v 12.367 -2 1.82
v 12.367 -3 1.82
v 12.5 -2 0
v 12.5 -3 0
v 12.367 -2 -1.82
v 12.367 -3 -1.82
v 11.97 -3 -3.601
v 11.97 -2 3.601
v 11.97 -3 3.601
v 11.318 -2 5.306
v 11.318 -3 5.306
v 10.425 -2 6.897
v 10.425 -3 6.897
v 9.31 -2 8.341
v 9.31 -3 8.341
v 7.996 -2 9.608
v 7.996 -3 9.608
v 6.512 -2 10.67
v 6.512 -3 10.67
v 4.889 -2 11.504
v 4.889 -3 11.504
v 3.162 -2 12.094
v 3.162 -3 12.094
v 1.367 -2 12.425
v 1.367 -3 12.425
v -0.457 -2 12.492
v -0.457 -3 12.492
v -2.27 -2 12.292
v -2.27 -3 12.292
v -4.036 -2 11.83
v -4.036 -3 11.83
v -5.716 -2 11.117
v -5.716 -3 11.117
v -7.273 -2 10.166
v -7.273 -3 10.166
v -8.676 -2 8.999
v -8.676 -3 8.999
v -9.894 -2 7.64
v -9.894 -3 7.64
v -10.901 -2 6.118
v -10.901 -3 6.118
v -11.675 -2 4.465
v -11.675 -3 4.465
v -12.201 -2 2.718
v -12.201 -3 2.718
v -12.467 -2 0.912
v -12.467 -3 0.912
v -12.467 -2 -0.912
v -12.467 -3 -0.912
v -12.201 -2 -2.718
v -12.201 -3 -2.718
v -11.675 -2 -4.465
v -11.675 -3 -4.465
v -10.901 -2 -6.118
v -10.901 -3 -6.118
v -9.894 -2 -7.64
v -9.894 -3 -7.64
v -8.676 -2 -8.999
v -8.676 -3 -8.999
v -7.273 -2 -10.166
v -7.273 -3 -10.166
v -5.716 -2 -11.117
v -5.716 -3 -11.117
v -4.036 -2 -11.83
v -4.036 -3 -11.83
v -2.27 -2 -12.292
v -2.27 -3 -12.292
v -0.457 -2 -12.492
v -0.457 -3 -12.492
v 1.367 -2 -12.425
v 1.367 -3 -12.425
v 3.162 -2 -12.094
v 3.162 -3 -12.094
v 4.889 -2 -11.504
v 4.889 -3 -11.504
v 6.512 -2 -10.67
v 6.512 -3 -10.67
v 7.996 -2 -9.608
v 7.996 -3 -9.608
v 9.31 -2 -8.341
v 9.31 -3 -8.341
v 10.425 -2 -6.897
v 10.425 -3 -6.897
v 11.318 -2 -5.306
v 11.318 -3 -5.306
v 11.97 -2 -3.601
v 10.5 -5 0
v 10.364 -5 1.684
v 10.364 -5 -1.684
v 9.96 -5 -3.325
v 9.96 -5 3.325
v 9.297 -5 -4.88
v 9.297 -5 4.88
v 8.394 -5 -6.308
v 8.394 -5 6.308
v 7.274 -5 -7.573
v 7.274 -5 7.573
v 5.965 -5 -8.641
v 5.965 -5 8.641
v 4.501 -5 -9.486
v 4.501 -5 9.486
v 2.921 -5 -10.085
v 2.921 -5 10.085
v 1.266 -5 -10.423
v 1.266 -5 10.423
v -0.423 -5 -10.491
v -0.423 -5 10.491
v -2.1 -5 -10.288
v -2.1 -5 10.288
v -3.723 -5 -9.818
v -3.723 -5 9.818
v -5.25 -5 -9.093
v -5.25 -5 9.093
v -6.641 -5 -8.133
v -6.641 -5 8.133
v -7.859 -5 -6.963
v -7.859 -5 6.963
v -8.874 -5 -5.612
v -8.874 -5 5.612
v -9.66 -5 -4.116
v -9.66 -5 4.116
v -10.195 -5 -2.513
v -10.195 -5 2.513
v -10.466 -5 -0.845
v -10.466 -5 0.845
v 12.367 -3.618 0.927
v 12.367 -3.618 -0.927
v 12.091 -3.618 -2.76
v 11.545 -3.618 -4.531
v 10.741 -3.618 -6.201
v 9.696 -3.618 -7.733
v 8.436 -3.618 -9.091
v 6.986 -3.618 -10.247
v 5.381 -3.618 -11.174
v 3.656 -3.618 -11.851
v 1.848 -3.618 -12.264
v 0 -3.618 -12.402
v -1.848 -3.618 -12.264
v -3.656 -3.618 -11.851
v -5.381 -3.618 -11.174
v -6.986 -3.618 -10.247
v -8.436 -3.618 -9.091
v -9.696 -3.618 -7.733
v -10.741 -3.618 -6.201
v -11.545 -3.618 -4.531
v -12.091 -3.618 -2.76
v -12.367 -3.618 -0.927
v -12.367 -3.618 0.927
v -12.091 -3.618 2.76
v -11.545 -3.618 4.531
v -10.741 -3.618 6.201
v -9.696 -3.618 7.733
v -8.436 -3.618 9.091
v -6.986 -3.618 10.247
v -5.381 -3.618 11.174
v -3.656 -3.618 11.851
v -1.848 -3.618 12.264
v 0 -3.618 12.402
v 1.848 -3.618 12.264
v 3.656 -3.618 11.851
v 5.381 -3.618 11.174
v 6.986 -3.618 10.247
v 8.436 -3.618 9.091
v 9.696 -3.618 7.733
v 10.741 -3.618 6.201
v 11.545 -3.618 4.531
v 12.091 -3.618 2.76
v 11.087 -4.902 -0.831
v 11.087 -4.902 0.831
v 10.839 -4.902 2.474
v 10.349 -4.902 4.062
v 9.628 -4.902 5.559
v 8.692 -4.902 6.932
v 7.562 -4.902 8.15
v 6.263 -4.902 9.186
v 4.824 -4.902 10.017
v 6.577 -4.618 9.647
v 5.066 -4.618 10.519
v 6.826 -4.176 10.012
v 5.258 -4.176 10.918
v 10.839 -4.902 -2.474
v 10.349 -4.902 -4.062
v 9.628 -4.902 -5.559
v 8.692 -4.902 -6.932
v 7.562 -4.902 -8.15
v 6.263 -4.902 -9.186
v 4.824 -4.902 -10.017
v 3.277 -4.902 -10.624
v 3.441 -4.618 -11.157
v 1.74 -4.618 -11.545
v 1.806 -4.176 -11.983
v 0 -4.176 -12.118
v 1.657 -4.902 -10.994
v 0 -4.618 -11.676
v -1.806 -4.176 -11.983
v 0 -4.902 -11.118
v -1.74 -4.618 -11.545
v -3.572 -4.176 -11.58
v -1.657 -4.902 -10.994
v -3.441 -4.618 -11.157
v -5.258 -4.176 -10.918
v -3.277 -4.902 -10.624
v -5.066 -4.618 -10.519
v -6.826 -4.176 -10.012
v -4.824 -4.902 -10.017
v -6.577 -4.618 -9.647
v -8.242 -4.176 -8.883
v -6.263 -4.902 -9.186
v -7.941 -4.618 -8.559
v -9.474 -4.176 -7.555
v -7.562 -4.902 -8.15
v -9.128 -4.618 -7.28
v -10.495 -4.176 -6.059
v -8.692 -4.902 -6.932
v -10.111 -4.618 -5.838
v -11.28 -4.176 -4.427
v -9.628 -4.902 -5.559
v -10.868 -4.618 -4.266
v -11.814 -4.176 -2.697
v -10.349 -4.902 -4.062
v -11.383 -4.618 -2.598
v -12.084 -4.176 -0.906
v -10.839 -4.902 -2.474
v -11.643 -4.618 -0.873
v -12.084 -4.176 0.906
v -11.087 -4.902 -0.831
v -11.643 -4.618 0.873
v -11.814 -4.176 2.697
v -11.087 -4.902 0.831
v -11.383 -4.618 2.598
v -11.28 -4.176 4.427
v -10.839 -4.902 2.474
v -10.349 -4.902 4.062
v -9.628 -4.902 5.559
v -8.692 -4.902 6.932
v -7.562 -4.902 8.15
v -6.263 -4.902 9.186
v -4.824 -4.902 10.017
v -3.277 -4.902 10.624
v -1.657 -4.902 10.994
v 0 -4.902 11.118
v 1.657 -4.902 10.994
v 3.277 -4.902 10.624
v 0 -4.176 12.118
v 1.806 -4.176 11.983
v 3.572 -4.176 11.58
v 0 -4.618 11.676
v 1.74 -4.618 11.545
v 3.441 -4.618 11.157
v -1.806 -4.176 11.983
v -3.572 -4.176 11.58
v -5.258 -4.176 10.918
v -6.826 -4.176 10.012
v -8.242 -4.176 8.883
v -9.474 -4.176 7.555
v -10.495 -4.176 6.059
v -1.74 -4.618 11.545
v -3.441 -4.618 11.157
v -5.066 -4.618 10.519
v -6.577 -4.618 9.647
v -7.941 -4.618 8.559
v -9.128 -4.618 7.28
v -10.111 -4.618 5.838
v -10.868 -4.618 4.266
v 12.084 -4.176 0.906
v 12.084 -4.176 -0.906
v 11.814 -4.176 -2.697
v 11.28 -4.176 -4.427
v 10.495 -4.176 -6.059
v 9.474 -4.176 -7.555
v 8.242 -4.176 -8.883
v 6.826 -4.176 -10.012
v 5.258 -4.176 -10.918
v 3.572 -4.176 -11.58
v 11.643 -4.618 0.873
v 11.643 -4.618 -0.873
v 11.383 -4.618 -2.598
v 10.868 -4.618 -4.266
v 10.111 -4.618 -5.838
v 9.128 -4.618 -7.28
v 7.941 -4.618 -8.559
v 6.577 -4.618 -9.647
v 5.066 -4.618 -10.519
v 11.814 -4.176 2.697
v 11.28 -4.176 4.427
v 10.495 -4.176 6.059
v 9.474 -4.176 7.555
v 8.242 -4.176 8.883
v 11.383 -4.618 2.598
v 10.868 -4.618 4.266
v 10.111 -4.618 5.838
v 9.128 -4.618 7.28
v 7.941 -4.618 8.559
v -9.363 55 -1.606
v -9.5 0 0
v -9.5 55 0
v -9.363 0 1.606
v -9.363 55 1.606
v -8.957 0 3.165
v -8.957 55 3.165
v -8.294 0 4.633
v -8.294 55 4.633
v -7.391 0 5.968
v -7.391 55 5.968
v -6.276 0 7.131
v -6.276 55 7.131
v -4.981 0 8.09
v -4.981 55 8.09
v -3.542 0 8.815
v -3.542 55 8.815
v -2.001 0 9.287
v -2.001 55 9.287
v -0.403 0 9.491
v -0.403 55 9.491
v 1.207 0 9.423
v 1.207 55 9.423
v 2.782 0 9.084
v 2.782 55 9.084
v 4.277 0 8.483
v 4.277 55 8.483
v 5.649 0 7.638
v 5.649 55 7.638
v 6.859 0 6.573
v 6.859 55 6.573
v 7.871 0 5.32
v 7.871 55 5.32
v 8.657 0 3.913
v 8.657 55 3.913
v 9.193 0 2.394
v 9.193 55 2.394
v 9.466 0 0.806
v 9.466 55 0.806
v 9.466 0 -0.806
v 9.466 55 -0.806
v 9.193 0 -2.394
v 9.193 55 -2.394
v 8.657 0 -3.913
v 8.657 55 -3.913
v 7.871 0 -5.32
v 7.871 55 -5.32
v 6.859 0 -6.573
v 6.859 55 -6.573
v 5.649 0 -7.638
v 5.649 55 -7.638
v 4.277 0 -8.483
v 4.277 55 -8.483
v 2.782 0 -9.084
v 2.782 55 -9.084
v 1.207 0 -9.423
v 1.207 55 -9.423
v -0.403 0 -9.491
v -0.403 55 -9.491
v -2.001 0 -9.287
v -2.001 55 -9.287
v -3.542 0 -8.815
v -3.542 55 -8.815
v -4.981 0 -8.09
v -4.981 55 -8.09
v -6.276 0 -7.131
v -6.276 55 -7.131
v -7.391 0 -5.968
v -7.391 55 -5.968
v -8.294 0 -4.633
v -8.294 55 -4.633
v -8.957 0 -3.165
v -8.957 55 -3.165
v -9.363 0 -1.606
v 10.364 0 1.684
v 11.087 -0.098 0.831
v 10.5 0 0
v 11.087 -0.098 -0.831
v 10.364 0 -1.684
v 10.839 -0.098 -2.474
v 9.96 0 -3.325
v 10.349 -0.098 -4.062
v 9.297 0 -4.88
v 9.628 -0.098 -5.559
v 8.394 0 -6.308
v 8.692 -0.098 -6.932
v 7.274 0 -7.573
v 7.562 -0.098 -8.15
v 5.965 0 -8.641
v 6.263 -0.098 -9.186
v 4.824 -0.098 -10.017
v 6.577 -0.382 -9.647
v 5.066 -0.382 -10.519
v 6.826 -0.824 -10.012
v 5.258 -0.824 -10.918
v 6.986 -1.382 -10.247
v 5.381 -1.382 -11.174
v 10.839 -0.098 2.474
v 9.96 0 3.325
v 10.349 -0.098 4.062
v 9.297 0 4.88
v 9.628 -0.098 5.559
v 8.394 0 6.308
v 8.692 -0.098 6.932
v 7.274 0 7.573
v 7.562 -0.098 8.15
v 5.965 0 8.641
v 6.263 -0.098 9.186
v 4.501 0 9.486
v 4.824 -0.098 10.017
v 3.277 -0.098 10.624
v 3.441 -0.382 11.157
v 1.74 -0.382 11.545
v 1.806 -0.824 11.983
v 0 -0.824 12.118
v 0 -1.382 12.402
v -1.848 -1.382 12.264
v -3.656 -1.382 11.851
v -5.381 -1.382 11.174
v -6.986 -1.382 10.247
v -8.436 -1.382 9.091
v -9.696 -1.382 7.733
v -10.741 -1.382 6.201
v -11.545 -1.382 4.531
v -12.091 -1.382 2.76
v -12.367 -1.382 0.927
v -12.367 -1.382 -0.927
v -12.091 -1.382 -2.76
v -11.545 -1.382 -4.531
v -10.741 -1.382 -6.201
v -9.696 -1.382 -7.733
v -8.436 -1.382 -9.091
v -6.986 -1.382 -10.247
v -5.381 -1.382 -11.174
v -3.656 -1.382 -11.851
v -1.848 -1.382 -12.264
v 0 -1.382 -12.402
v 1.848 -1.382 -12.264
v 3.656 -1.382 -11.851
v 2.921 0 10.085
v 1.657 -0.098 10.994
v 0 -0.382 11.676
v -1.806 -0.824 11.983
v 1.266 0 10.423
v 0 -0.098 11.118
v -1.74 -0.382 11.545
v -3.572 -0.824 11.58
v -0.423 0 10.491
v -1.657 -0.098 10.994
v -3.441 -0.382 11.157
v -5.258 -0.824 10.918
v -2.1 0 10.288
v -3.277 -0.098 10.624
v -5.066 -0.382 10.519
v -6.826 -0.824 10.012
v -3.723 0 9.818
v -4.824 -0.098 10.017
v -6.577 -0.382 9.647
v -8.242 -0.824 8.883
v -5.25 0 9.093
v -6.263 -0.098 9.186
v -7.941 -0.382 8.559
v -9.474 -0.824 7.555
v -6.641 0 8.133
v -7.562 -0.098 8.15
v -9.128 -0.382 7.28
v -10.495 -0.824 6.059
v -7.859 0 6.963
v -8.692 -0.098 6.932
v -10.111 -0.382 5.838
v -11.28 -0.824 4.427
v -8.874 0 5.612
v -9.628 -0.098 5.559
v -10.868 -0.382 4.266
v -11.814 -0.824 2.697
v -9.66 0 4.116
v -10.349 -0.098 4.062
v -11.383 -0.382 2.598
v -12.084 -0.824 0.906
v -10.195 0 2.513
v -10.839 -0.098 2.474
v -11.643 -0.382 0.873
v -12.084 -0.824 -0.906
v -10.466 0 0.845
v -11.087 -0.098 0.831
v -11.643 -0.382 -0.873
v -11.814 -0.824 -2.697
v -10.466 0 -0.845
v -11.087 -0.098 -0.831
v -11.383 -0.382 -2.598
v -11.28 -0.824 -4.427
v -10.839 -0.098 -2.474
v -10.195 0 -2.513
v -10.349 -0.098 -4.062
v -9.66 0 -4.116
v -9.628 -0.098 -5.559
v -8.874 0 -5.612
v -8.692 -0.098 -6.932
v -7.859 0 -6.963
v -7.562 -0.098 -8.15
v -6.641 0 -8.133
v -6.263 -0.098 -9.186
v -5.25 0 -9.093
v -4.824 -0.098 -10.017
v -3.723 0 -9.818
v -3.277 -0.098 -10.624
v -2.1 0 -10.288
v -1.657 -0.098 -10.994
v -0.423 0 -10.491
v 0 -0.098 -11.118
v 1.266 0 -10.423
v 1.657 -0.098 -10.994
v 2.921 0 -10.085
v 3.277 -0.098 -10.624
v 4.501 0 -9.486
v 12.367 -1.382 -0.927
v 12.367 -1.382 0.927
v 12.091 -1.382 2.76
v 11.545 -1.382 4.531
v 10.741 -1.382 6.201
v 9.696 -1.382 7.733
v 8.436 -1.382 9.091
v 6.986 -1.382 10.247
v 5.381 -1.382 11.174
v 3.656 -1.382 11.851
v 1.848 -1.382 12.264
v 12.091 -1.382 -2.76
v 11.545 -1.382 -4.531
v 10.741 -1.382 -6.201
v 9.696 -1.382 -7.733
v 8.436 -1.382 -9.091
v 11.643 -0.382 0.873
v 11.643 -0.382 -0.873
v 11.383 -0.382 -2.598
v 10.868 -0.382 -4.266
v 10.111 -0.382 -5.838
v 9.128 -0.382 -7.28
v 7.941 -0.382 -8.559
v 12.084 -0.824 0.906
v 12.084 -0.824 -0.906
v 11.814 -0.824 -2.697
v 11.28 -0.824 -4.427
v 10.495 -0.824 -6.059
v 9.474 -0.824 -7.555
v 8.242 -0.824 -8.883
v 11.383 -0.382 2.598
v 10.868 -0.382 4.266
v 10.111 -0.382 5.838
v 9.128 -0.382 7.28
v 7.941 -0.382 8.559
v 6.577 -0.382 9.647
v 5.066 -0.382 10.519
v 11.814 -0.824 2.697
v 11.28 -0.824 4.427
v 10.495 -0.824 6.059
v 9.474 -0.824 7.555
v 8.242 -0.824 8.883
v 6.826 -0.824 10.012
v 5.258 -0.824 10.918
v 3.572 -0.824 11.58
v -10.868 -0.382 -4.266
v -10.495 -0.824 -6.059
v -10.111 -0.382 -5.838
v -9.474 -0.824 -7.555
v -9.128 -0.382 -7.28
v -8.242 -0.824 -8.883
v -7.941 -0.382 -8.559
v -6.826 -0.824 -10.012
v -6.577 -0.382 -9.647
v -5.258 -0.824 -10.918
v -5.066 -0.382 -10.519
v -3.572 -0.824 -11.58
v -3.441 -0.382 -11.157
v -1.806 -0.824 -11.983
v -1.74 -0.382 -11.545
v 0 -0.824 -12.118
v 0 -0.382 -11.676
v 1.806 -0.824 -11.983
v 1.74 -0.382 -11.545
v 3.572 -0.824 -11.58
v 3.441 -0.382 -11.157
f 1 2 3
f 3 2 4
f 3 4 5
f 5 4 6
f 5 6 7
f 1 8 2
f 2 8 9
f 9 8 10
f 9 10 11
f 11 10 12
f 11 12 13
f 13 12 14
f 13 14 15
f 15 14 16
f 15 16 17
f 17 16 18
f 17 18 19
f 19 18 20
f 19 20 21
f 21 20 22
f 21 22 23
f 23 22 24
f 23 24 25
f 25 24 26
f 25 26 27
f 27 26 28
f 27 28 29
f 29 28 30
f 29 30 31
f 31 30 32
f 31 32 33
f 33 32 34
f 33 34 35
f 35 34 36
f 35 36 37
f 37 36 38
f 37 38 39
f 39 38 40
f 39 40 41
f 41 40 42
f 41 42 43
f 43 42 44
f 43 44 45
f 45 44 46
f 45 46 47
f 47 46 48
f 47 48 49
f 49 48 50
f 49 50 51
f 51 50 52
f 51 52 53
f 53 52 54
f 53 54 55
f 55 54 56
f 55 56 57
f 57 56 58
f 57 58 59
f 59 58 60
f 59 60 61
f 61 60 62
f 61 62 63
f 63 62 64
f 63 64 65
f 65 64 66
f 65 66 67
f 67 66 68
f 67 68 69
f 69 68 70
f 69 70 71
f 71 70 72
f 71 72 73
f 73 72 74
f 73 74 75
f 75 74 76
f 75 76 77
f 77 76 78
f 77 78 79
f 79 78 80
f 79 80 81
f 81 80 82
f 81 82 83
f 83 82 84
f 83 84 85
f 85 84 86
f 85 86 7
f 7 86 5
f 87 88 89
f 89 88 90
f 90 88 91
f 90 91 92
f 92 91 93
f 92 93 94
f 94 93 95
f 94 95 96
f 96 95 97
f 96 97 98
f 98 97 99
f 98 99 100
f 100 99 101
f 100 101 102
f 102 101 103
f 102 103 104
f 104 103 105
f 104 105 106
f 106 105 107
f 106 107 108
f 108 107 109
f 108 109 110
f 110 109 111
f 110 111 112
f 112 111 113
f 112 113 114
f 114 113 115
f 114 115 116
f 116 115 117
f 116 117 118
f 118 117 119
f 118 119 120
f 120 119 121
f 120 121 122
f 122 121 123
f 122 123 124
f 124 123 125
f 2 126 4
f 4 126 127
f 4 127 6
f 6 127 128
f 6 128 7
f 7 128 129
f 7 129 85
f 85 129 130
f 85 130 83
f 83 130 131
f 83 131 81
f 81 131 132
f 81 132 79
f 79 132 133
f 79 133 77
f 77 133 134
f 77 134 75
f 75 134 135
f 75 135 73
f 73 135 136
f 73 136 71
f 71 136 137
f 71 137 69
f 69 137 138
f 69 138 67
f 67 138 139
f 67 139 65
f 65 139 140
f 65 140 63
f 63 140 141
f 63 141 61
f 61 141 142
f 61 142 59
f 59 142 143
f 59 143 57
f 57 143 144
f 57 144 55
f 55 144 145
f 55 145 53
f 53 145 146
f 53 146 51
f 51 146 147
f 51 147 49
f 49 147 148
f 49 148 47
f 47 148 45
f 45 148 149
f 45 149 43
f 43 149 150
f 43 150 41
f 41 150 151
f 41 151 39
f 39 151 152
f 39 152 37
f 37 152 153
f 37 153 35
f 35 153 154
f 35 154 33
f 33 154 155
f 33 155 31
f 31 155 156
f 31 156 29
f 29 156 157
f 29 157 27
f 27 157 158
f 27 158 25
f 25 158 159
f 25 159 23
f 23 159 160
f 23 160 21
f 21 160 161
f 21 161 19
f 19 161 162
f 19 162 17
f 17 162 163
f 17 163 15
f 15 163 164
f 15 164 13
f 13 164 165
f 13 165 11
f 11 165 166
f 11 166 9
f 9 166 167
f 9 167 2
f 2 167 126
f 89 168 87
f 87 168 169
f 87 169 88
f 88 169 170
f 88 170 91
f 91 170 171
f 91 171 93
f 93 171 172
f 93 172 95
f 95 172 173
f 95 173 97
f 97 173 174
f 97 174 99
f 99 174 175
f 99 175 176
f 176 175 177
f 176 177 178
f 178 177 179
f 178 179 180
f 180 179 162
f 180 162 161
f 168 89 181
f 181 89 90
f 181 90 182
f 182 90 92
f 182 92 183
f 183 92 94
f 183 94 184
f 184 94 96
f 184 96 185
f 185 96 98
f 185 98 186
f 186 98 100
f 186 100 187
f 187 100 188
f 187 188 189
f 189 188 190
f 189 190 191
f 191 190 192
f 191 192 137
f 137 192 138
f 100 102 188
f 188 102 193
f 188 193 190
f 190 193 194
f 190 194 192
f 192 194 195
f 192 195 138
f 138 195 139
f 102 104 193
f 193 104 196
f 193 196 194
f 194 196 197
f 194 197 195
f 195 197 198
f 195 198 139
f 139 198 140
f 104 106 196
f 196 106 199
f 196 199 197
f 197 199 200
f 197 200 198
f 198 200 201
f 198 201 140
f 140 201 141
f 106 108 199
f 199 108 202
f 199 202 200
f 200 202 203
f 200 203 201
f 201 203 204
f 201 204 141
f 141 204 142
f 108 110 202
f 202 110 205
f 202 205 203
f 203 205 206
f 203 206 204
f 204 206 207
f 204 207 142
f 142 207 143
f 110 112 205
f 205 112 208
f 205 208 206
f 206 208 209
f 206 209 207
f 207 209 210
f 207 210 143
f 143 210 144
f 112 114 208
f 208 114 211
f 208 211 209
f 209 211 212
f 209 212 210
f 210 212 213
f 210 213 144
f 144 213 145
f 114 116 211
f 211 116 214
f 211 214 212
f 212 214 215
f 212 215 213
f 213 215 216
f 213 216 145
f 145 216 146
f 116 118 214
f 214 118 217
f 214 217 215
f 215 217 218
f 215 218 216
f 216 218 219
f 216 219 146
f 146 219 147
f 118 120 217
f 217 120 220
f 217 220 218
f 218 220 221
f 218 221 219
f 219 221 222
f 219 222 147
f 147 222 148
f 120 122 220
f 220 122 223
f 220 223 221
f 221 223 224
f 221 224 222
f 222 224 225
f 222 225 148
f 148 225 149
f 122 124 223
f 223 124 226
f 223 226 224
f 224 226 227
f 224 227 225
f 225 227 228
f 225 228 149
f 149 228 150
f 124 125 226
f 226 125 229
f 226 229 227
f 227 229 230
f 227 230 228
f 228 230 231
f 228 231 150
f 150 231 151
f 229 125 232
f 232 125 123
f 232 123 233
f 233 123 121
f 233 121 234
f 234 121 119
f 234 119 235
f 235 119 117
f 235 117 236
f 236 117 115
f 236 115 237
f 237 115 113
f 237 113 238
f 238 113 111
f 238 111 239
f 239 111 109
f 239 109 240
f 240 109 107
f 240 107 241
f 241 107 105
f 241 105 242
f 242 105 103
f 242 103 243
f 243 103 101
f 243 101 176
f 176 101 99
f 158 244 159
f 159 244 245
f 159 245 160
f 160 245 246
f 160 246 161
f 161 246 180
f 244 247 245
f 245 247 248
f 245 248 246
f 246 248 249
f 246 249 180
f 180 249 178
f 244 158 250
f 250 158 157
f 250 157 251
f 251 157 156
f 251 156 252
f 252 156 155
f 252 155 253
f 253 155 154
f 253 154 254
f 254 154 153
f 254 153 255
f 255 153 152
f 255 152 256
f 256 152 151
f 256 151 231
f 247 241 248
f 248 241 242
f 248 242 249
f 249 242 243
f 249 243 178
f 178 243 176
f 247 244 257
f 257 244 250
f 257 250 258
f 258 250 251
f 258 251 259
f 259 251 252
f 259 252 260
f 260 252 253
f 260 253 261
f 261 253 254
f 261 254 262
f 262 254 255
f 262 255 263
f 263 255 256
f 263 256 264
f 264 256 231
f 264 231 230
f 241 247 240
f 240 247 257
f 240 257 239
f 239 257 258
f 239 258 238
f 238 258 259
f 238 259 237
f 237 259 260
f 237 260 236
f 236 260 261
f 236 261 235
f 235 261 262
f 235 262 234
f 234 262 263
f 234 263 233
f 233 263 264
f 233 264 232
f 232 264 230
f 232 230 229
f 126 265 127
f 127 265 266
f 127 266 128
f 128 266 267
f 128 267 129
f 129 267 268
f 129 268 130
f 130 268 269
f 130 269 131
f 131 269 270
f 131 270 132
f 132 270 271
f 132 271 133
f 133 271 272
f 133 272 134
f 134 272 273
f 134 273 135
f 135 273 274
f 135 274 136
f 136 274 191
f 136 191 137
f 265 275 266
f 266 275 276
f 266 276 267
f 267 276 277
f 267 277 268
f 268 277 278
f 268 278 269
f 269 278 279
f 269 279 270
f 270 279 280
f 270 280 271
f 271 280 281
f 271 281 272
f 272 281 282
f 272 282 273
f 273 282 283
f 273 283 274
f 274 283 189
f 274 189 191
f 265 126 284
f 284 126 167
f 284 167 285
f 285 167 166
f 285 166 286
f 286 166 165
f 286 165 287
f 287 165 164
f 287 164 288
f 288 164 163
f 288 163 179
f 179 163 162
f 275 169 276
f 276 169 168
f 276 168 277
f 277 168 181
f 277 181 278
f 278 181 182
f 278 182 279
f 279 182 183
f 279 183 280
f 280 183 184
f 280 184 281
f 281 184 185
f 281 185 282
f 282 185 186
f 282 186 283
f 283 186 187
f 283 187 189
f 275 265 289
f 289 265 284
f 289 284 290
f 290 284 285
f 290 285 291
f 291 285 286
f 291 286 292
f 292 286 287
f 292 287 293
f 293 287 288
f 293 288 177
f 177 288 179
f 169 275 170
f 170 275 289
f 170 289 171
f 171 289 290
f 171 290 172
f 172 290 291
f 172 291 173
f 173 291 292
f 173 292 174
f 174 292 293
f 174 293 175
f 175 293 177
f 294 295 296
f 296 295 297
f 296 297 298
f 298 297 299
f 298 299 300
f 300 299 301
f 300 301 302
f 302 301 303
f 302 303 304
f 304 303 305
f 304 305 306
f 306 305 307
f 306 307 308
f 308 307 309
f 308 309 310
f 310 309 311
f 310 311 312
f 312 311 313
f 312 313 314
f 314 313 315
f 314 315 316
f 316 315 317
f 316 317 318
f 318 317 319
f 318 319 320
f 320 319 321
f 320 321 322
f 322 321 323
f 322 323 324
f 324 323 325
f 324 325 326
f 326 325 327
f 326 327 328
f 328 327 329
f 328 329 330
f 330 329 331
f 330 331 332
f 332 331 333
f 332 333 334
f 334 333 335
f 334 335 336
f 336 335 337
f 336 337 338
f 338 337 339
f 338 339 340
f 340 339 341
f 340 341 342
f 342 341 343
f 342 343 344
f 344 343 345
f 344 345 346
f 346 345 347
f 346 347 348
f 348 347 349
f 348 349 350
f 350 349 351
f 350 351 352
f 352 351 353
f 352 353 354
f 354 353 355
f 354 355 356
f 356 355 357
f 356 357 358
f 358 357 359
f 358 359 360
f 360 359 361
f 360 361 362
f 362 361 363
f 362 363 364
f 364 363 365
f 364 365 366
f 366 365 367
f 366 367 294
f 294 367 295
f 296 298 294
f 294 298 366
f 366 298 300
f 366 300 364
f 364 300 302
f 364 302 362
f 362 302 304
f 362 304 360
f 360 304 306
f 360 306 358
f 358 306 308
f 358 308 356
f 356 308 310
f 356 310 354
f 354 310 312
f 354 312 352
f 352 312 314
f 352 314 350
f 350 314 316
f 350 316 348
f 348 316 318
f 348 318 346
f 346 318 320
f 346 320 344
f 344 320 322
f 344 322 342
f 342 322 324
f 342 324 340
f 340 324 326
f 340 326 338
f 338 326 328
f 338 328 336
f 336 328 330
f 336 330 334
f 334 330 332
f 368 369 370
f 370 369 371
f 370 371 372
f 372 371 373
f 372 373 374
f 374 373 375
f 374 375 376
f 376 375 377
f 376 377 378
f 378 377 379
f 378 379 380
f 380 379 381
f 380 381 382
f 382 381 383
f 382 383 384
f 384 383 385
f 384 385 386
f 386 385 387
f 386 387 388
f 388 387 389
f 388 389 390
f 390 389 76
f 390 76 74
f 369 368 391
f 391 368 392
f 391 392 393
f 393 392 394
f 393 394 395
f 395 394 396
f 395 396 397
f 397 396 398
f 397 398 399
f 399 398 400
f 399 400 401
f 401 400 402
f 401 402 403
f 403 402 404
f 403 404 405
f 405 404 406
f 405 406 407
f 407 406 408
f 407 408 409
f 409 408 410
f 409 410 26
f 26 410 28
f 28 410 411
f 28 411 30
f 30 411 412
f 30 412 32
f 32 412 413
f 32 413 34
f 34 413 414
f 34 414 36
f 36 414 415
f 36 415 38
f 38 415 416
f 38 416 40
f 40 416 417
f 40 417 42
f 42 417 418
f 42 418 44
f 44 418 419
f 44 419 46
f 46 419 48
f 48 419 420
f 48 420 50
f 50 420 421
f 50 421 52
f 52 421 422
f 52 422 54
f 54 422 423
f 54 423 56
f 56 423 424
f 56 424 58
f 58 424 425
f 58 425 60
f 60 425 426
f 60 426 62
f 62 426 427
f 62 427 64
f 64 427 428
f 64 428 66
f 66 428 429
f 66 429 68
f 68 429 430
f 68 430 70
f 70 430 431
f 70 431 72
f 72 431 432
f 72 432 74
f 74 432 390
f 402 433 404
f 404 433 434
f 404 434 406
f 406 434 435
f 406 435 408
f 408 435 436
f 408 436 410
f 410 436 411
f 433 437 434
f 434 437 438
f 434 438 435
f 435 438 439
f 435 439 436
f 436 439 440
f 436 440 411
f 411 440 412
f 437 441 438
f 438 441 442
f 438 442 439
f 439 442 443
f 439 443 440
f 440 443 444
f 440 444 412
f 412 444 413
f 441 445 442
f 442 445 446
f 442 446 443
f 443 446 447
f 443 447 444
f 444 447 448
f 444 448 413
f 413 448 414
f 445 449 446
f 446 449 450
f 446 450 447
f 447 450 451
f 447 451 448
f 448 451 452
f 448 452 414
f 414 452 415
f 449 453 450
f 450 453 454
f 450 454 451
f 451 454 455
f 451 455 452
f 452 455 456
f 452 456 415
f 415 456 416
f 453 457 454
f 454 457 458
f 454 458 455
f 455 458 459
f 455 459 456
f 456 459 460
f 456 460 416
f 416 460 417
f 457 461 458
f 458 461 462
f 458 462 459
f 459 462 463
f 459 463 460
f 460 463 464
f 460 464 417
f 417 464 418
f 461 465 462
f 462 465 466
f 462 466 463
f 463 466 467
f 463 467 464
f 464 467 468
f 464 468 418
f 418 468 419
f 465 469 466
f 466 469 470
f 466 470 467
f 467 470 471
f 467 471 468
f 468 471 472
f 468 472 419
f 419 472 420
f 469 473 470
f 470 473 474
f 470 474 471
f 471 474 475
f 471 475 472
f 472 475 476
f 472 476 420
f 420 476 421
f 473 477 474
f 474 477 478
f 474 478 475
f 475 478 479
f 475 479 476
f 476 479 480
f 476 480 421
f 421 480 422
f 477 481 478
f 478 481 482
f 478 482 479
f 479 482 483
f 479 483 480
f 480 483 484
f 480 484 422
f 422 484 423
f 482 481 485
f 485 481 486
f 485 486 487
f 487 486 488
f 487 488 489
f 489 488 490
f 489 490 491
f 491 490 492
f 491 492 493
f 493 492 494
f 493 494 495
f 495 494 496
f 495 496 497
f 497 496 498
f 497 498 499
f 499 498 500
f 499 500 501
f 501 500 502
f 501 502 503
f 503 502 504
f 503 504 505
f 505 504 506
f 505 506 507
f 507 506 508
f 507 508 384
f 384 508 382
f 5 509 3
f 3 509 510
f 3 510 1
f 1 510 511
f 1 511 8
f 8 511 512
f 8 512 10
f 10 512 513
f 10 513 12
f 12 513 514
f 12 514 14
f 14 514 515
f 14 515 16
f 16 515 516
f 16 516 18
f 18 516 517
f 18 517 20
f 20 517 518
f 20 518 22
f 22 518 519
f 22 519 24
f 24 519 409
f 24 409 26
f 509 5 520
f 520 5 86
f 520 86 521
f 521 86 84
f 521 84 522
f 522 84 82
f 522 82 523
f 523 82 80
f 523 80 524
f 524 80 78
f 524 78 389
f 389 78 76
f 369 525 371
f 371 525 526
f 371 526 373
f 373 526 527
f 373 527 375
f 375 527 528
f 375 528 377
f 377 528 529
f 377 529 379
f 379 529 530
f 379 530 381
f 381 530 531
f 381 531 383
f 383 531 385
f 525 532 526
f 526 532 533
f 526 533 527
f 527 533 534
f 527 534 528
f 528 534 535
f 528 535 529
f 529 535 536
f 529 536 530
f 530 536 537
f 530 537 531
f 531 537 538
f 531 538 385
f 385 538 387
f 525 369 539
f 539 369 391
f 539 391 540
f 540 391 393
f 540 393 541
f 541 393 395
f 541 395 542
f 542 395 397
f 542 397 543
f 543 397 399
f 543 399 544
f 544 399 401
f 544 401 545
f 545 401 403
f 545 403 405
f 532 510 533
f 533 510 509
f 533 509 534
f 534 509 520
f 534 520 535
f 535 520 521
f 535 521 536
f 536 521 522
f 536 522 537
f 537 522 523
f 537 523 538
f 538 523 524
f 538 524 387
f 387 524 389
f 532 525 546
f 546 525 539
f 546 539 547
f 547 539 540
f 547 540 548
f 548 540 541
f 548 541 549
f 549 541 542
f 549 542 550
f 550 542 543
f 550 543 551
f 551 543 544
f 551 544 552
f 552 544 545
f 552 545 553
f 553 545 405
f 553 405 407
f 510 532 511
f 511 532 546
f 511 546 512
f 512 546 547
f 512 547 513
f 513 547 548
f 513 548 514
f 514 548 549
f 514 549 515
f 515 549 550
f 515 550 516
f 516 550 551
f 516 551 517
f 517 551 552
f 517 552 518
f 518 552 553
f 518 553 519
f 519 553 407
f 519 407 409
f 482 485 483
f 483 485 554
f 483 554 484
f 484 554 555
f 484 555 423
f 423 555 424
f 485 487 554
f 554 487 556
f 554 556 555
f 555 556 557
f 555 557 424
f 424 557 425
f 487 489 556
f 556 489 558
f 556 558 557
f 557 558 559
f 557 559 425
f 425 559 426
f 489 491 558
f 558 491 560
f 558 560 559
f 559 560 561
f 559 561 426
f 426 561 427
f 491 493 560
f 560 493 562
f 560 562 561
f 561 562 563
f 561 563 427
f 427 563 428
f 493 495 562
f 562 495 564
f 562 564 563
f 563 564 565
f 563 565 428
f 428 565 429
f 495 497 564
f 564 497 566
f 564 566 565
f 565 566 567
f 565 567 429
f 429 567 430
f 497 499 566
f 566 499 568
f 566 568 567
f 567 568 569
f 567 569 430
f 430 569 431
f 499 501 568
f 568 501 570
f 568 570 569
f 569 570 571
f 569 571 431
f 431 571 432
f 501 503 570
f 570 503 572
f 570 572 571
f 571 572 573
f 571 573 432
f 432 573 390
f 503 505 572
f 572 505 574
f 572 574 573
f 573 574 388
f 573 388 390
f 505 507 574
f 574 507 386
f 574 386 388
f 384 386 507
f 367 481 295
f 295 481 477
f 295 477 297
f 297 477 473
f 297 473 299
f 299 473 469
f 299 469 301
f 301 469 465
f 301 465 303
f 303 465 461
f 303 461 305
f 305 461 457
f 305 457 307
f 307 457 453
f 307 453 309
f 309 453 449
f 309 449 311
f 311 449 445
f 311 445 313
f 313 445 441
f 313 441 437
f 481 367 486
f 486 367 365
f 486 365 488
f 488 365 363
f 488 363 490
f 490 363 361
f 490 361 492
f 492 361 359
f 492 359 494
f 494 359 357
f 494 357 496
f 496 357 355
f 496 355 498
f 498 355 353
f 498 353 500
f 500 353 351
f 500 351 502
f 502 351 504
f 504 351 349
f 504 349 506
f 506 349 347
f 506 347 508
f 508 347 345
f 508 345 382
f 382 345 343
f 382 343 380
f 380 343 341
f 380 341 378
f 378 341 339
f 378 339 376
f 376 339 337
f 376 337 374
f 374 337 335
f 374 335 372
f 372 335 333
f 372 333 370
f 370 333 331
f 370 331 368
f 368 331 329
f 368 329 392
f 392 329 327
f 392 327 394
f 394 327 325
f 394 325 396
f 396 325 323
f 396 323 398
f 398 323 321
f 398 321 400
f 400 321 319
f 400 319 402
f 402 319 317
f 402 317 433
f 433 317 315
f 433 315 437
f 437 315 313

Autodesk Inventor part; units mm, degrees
ref_plane "YZ Plane" through (0, 0, 0) normal (1, 0, 0) x (0, 1, 0)
ref_plane "XZ Plane" through (0, 0, 0) normal (0, 1, 0) x (-1, 0, 0)
ref_plane "XY Plane" through (0, 0, 0) normal (0, 0, 1) x (1, 0, 0)
sketch "Sketch1" plane through (0, 0, 0) normal (0, 1, 0) x (-1, 0, 0)
  circle A0 centre (0, 0) radius 9.5
  dimension "d0" = 19
extrude "Extrusion1" add sketch "Sketch1" along normal blind 55
sketch "Sketch2" plane through (0, 0, 0) normal (0, -1, 0) x (1, 0, 0)
  point P0 (0, 0)
sketch "Sketch3" plane through (0, 0, 0) normal (0, -1, 0) x (1, 0, 0)
  circle A0 centre (0, 0) radius 12.5
  dimension "d3" = 25
extrude "Extrusion2" add sketch "Sketch3" along normal blind 5
fillet "Fillet1" radius 2 2 edges at (-12.5, 0, 0) (-12.5, -5, 0)
sketch "Sketch4" plane through (0, 55, 0) normal (0, 1, 0) x (1, 0, 0)
  point P0 (0, 0)
sketch "Sketch5" plane through (0, 0, 0) normal (0, 1, 0) x (1, 0, 0)
  point P0 (0, 0)
sketch "Sketch6" plane through (0, 0, 0) normal (1, 0, 0) x (0, 1, 0)
  point P0 (0, 0)
equation "\"BendRadius\" = Thickness"
equation "\"BendReliefWidth\" = Thickness"
equation "\"BendReliefDepth\" = 0.5 * Thickness"
equation "\"CornerReliefSize\" = 4 * Thickness"
equation "\"MinimumRemnant\" = 2 * Thickness"
equation "\"TransitionRadius\" = BendRadius"
equation "\"JacobiRadiusSize\" = BendRadius"
equation "\"GapSize\" = Thickness"
equation "\"Thickness\" = 0.5"
